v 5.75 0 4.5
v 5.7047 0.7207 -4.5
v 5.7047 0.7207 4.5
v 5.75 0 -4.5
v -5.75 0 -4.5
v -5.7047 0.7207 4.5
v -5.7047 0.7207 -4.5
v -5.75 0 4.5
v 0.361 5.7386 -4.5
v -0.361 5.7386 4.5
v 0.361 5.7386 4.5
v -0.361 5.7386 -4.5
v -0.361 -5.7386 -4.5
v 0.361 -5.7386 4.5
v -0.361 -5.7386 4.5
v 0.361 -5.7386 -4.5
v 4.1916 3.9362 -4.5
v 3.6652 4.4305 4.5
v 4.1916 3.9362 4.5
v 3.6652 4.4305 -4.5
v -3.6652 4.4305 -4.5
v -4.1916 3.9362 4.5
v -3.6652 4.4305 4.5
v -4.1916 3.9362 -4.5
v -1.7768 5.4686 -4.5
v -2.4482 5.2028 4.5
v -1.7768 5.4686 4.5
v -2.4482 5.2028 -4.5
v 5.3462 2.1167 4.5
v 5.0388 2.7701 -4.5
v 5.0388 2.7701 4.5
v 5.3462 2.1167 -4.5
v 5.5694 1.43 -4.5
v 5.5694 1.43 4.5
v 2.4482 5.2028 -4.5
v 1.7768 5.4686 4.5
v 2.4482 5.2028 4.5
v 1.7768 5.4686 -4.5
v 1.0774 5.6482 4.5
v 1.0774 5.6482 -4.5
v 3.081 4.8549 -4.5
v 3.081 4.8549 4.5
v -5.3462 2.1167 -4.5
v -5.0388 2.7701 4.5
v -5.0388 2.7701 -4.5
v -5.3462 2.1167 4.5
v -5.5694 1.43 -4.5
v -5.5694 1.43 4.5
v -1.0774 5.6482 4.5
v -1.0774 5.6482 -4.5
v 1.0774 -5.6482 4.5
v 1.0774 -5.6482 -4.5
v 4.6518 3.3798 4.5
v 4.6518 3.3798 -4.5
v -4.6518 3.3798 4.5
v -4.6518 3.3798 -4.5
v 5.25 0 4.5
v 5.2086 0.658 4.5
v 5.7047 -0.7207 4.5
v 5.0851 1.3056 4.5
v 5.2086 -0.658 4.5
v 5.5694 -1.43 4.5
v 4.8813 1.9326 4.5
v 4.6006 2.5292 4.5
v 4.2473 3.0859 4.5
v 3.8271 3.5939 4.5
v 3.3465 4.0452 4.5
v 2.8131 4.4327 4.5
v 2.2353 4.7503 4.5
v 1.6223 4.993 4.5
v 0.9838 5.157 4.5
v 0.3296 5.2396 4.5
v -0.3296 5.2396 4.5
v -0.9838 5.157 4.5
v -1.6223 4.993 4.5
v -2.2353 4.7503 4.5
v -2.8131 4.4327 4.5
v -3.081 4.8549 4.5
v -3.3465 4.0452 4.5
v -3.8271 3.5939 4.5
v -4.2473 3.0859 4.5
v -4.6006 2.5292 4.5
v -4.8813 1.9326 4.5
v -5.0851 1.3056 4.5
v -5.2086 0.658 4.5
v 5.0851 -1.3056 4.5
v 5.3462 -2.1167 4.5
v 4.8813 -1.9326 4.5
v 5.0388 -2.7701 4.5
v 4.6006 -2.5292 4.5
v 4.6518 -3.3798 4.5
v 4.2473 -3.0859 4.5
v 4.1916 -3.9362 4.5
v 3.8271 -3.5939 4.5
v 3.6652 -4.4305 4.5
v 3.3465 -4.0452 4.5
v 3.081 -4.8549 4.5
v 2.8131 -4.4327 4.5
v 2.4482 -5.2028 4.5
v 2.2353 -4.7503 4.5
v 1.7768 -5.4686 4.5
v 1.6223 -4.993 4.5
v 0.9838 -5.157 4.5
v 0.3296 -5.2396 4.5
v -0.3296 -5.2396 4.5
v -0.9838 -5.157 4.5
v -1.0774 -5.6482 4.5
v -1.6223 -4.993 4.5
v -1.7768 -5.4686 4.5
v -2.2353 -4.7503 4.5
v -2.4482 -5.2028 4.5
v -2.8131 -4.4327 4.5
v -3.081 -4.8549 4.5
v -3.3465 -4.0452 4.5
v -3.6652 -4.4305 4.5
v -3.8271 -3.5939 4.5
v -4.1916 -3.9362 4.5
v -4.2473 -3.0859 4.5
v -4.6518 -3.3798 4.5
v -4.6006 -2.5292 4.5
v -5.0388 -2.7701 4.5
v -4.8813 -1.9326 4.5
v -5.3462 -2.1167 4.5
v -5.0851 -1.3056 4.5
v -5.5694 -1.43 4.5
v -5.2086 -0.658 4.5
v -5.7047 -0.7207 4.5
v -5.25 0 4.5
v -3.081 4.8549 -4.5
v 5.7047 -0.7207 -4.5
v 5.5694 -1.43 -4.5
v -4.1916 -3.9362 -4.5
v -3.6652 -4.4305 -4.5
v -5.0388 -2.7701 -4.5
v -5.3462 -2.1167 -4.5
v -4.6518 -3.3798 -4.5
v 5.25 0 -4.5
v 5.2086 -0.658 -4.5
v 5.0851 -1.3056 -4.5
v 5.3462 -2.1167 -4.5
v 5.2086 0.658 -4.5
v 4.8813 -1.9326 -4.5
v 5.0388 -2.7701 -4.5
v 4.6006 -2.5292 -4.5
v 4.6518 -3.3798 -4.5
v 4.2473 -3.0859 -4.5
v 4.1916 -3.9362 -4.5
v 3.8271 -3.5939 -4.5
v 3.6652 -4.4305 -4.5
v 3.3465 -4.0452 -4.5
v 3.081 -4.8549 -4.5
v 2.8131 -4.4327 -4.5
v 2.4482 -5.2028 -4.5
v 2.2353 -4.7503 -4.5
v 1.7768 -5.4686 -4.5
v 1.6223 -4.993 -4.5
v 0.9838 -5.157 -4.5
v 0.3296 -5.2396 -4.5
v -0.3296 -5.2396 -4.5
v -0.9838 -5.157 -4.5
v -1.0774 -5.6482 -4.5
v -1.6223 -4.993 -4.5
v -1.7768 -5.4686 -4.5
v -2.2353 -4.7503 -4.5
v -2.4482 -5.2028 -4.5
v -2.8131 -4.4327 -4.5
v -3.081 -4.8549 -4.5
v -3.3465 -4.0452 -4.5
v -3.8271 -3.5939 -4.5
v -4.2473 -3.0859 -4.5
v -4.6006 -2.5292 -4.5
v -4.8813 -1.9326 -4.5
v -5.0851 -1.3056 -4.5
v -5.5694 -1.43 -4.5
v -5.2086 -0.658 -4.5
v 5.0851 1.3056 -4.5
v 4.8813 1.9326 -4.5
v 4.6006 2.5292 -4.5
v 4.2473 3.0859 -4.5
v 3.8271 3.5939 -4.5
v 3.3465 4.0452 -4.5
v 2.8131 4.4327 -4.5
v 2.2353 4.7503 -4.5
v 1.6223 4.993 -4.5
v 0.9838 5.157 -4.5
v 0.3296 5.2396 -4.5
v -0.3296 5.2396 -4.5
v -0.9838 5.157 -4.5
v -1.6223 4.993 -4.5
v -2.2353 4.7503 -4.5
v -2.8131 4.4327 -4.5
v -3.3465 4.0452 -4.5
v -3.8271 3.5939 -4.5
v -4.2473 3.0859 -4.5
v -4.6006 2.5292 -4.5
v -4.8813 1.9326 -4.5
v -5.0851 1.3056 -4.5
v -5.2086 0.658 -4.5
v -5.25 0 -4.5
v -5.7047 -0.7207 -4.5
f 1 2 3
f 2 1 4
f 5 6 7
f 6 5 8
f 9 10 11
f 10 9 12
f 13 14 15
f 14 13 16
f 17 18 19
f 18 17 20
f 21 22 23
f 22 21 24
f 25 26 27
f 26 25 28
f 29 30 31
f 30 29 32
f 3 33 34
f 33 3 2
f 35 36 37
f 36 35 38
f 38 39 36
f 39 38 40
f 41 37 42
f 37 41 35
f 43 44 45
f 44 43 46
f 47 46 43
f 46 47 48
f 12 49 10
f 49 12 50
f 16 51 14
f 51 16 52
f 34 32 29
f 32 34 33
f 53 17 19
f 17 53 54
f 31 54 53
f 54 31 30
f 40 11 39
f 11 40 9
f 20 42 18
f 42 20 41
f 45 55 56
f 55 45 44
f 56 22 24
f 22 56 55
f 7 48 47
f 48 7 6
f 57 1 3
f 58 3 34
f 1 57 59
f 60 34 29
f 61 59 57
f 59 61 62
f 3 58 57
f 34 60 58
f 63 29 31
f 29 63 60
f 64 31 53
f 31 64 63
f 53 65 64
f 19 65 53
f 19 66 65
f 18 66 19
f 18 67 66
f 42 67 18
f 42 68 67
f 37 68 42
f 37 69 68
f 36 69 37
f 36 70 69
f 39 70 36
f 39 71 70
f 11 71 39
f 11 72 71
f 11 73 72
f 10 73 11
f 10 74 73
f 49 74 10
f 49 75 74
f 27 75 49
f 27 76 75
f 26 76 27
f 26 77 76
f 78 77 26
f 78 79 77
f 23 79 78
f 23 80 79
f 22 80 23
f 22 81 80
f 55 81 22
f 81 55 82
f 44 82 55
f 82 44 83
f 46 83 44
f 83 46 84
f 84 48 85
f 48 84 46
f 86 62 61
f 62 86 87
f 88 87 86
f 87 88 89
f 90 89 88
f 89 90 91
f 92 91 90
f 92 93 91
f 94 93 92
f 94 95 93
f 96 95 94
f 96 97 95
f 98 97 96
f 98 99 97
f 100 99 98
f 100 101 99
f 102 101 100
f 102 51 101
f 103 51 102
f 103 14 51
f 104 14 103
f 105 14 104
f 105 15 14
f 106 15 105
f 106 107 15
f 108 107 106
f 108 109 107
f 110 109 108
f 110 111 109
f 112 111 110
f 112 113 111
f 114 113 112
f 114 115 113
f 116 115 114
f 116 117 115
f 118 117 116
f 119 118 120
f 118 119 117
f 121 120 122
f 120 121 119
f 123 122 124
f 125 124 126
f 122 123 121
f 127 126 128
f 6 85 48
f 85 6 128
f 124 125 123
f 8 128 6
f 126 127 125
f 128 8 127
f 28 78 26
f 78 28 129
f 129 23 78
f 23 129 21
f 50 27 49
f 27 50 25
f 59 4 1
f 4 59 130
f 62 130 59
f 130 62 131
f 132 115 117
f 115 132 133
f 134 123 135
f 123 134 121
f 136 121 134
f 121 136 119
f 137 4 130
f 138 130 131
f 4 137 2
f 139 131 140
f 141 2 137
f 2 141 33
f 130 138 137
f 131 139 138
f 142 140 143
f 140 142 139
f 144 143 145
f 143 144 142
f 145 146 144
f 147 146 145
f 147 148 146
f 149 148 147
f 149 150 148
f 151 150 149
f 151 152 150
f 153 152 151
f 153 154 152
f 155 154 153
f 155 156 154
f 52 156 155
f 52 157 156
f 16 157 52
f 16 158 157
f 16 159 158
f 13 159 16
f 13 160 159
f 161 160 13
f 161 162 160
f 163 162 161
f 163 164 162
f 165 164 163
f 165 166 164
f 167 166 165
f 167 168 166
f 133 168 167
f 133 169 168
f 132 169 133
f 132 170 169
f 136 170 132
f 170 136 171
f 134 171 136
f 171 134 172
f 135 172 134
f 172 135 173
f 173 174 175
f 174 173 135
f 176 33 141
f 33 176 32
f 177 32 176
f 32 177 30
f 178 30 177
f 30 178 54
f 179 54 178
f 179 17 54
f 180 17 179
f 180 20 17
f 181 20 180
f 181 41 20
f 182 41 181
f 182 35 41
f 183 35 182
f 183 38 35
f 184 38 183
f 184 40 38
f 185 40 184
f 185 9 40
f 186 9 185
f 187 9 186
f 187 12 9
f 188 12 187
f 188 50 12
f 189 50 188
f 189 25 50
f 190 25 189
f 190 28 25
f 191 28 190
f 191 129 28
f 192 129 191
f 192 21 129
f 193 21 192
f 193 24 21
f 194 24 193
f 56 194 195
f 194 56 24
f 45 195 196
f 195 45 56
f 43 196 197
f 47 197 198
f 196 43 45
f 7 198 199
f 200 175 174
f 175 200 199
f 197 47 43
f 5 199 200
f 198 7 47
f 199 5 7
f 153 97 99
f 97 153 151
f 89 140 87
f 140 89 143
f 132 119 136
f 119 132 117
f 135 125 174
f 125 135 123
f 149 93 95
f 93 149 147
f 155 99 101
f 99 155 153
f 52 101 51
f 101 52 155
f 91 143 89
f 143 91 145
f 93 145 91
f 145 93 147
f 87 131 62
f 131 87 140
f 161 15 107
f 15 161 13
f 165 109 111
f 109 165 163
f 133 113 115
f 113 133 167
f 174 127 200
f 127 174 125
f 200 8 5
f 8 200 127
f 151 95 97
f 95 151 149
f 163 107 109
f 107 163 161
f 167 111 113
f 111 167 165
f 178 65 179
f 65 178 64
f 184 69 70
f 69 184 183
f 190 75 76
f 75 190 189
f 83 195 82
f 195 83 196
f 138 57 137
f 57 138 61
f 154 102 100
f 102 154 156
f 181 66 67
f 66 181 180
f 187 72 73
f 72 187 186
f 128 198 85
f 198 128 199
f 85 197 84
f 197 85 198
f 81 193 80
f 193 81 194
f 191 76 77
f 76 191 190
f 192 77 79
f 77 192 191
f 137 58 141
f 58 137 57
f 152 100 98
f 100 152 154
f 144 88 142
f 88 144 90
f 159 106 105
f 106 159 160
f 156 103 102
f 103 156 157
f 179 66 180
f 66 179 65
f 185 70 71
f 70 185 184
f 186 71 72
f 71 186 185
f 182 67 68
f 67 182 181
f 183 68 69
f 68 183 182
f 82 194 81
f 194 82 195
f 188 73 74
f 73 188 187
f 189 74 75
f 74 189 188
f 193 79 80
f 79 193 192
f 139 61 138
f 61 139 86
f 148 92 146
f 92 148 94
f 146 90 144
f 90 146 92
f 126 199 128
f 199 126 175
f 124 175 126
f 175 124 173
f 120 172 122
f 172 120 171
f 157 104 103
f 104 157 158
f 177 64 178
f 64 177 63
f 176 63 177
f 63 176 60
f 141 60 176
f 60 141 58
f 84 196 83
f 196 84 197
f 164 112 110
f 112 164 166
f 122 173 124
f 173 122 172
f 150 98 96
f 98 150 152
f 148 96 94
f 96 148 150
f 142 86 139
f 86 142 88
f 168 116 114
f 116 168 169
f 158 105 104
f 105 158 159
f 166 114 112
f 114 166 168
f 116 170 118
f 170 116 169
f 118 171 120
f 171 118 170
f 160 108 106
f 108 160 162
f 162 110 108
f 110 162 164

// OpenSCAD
$fn = 50;


difference() {
	union() {
		translate(v = [0, 0, -4.5000000000]) {
			cylinder(h = 9, r = 5.7500000000);
		}
	}
	union() {
		translate(v = [0, 0, -100.0000000000]) {
			cylinder(h = 200, r = 5.2500000000);
		}
	}
}
